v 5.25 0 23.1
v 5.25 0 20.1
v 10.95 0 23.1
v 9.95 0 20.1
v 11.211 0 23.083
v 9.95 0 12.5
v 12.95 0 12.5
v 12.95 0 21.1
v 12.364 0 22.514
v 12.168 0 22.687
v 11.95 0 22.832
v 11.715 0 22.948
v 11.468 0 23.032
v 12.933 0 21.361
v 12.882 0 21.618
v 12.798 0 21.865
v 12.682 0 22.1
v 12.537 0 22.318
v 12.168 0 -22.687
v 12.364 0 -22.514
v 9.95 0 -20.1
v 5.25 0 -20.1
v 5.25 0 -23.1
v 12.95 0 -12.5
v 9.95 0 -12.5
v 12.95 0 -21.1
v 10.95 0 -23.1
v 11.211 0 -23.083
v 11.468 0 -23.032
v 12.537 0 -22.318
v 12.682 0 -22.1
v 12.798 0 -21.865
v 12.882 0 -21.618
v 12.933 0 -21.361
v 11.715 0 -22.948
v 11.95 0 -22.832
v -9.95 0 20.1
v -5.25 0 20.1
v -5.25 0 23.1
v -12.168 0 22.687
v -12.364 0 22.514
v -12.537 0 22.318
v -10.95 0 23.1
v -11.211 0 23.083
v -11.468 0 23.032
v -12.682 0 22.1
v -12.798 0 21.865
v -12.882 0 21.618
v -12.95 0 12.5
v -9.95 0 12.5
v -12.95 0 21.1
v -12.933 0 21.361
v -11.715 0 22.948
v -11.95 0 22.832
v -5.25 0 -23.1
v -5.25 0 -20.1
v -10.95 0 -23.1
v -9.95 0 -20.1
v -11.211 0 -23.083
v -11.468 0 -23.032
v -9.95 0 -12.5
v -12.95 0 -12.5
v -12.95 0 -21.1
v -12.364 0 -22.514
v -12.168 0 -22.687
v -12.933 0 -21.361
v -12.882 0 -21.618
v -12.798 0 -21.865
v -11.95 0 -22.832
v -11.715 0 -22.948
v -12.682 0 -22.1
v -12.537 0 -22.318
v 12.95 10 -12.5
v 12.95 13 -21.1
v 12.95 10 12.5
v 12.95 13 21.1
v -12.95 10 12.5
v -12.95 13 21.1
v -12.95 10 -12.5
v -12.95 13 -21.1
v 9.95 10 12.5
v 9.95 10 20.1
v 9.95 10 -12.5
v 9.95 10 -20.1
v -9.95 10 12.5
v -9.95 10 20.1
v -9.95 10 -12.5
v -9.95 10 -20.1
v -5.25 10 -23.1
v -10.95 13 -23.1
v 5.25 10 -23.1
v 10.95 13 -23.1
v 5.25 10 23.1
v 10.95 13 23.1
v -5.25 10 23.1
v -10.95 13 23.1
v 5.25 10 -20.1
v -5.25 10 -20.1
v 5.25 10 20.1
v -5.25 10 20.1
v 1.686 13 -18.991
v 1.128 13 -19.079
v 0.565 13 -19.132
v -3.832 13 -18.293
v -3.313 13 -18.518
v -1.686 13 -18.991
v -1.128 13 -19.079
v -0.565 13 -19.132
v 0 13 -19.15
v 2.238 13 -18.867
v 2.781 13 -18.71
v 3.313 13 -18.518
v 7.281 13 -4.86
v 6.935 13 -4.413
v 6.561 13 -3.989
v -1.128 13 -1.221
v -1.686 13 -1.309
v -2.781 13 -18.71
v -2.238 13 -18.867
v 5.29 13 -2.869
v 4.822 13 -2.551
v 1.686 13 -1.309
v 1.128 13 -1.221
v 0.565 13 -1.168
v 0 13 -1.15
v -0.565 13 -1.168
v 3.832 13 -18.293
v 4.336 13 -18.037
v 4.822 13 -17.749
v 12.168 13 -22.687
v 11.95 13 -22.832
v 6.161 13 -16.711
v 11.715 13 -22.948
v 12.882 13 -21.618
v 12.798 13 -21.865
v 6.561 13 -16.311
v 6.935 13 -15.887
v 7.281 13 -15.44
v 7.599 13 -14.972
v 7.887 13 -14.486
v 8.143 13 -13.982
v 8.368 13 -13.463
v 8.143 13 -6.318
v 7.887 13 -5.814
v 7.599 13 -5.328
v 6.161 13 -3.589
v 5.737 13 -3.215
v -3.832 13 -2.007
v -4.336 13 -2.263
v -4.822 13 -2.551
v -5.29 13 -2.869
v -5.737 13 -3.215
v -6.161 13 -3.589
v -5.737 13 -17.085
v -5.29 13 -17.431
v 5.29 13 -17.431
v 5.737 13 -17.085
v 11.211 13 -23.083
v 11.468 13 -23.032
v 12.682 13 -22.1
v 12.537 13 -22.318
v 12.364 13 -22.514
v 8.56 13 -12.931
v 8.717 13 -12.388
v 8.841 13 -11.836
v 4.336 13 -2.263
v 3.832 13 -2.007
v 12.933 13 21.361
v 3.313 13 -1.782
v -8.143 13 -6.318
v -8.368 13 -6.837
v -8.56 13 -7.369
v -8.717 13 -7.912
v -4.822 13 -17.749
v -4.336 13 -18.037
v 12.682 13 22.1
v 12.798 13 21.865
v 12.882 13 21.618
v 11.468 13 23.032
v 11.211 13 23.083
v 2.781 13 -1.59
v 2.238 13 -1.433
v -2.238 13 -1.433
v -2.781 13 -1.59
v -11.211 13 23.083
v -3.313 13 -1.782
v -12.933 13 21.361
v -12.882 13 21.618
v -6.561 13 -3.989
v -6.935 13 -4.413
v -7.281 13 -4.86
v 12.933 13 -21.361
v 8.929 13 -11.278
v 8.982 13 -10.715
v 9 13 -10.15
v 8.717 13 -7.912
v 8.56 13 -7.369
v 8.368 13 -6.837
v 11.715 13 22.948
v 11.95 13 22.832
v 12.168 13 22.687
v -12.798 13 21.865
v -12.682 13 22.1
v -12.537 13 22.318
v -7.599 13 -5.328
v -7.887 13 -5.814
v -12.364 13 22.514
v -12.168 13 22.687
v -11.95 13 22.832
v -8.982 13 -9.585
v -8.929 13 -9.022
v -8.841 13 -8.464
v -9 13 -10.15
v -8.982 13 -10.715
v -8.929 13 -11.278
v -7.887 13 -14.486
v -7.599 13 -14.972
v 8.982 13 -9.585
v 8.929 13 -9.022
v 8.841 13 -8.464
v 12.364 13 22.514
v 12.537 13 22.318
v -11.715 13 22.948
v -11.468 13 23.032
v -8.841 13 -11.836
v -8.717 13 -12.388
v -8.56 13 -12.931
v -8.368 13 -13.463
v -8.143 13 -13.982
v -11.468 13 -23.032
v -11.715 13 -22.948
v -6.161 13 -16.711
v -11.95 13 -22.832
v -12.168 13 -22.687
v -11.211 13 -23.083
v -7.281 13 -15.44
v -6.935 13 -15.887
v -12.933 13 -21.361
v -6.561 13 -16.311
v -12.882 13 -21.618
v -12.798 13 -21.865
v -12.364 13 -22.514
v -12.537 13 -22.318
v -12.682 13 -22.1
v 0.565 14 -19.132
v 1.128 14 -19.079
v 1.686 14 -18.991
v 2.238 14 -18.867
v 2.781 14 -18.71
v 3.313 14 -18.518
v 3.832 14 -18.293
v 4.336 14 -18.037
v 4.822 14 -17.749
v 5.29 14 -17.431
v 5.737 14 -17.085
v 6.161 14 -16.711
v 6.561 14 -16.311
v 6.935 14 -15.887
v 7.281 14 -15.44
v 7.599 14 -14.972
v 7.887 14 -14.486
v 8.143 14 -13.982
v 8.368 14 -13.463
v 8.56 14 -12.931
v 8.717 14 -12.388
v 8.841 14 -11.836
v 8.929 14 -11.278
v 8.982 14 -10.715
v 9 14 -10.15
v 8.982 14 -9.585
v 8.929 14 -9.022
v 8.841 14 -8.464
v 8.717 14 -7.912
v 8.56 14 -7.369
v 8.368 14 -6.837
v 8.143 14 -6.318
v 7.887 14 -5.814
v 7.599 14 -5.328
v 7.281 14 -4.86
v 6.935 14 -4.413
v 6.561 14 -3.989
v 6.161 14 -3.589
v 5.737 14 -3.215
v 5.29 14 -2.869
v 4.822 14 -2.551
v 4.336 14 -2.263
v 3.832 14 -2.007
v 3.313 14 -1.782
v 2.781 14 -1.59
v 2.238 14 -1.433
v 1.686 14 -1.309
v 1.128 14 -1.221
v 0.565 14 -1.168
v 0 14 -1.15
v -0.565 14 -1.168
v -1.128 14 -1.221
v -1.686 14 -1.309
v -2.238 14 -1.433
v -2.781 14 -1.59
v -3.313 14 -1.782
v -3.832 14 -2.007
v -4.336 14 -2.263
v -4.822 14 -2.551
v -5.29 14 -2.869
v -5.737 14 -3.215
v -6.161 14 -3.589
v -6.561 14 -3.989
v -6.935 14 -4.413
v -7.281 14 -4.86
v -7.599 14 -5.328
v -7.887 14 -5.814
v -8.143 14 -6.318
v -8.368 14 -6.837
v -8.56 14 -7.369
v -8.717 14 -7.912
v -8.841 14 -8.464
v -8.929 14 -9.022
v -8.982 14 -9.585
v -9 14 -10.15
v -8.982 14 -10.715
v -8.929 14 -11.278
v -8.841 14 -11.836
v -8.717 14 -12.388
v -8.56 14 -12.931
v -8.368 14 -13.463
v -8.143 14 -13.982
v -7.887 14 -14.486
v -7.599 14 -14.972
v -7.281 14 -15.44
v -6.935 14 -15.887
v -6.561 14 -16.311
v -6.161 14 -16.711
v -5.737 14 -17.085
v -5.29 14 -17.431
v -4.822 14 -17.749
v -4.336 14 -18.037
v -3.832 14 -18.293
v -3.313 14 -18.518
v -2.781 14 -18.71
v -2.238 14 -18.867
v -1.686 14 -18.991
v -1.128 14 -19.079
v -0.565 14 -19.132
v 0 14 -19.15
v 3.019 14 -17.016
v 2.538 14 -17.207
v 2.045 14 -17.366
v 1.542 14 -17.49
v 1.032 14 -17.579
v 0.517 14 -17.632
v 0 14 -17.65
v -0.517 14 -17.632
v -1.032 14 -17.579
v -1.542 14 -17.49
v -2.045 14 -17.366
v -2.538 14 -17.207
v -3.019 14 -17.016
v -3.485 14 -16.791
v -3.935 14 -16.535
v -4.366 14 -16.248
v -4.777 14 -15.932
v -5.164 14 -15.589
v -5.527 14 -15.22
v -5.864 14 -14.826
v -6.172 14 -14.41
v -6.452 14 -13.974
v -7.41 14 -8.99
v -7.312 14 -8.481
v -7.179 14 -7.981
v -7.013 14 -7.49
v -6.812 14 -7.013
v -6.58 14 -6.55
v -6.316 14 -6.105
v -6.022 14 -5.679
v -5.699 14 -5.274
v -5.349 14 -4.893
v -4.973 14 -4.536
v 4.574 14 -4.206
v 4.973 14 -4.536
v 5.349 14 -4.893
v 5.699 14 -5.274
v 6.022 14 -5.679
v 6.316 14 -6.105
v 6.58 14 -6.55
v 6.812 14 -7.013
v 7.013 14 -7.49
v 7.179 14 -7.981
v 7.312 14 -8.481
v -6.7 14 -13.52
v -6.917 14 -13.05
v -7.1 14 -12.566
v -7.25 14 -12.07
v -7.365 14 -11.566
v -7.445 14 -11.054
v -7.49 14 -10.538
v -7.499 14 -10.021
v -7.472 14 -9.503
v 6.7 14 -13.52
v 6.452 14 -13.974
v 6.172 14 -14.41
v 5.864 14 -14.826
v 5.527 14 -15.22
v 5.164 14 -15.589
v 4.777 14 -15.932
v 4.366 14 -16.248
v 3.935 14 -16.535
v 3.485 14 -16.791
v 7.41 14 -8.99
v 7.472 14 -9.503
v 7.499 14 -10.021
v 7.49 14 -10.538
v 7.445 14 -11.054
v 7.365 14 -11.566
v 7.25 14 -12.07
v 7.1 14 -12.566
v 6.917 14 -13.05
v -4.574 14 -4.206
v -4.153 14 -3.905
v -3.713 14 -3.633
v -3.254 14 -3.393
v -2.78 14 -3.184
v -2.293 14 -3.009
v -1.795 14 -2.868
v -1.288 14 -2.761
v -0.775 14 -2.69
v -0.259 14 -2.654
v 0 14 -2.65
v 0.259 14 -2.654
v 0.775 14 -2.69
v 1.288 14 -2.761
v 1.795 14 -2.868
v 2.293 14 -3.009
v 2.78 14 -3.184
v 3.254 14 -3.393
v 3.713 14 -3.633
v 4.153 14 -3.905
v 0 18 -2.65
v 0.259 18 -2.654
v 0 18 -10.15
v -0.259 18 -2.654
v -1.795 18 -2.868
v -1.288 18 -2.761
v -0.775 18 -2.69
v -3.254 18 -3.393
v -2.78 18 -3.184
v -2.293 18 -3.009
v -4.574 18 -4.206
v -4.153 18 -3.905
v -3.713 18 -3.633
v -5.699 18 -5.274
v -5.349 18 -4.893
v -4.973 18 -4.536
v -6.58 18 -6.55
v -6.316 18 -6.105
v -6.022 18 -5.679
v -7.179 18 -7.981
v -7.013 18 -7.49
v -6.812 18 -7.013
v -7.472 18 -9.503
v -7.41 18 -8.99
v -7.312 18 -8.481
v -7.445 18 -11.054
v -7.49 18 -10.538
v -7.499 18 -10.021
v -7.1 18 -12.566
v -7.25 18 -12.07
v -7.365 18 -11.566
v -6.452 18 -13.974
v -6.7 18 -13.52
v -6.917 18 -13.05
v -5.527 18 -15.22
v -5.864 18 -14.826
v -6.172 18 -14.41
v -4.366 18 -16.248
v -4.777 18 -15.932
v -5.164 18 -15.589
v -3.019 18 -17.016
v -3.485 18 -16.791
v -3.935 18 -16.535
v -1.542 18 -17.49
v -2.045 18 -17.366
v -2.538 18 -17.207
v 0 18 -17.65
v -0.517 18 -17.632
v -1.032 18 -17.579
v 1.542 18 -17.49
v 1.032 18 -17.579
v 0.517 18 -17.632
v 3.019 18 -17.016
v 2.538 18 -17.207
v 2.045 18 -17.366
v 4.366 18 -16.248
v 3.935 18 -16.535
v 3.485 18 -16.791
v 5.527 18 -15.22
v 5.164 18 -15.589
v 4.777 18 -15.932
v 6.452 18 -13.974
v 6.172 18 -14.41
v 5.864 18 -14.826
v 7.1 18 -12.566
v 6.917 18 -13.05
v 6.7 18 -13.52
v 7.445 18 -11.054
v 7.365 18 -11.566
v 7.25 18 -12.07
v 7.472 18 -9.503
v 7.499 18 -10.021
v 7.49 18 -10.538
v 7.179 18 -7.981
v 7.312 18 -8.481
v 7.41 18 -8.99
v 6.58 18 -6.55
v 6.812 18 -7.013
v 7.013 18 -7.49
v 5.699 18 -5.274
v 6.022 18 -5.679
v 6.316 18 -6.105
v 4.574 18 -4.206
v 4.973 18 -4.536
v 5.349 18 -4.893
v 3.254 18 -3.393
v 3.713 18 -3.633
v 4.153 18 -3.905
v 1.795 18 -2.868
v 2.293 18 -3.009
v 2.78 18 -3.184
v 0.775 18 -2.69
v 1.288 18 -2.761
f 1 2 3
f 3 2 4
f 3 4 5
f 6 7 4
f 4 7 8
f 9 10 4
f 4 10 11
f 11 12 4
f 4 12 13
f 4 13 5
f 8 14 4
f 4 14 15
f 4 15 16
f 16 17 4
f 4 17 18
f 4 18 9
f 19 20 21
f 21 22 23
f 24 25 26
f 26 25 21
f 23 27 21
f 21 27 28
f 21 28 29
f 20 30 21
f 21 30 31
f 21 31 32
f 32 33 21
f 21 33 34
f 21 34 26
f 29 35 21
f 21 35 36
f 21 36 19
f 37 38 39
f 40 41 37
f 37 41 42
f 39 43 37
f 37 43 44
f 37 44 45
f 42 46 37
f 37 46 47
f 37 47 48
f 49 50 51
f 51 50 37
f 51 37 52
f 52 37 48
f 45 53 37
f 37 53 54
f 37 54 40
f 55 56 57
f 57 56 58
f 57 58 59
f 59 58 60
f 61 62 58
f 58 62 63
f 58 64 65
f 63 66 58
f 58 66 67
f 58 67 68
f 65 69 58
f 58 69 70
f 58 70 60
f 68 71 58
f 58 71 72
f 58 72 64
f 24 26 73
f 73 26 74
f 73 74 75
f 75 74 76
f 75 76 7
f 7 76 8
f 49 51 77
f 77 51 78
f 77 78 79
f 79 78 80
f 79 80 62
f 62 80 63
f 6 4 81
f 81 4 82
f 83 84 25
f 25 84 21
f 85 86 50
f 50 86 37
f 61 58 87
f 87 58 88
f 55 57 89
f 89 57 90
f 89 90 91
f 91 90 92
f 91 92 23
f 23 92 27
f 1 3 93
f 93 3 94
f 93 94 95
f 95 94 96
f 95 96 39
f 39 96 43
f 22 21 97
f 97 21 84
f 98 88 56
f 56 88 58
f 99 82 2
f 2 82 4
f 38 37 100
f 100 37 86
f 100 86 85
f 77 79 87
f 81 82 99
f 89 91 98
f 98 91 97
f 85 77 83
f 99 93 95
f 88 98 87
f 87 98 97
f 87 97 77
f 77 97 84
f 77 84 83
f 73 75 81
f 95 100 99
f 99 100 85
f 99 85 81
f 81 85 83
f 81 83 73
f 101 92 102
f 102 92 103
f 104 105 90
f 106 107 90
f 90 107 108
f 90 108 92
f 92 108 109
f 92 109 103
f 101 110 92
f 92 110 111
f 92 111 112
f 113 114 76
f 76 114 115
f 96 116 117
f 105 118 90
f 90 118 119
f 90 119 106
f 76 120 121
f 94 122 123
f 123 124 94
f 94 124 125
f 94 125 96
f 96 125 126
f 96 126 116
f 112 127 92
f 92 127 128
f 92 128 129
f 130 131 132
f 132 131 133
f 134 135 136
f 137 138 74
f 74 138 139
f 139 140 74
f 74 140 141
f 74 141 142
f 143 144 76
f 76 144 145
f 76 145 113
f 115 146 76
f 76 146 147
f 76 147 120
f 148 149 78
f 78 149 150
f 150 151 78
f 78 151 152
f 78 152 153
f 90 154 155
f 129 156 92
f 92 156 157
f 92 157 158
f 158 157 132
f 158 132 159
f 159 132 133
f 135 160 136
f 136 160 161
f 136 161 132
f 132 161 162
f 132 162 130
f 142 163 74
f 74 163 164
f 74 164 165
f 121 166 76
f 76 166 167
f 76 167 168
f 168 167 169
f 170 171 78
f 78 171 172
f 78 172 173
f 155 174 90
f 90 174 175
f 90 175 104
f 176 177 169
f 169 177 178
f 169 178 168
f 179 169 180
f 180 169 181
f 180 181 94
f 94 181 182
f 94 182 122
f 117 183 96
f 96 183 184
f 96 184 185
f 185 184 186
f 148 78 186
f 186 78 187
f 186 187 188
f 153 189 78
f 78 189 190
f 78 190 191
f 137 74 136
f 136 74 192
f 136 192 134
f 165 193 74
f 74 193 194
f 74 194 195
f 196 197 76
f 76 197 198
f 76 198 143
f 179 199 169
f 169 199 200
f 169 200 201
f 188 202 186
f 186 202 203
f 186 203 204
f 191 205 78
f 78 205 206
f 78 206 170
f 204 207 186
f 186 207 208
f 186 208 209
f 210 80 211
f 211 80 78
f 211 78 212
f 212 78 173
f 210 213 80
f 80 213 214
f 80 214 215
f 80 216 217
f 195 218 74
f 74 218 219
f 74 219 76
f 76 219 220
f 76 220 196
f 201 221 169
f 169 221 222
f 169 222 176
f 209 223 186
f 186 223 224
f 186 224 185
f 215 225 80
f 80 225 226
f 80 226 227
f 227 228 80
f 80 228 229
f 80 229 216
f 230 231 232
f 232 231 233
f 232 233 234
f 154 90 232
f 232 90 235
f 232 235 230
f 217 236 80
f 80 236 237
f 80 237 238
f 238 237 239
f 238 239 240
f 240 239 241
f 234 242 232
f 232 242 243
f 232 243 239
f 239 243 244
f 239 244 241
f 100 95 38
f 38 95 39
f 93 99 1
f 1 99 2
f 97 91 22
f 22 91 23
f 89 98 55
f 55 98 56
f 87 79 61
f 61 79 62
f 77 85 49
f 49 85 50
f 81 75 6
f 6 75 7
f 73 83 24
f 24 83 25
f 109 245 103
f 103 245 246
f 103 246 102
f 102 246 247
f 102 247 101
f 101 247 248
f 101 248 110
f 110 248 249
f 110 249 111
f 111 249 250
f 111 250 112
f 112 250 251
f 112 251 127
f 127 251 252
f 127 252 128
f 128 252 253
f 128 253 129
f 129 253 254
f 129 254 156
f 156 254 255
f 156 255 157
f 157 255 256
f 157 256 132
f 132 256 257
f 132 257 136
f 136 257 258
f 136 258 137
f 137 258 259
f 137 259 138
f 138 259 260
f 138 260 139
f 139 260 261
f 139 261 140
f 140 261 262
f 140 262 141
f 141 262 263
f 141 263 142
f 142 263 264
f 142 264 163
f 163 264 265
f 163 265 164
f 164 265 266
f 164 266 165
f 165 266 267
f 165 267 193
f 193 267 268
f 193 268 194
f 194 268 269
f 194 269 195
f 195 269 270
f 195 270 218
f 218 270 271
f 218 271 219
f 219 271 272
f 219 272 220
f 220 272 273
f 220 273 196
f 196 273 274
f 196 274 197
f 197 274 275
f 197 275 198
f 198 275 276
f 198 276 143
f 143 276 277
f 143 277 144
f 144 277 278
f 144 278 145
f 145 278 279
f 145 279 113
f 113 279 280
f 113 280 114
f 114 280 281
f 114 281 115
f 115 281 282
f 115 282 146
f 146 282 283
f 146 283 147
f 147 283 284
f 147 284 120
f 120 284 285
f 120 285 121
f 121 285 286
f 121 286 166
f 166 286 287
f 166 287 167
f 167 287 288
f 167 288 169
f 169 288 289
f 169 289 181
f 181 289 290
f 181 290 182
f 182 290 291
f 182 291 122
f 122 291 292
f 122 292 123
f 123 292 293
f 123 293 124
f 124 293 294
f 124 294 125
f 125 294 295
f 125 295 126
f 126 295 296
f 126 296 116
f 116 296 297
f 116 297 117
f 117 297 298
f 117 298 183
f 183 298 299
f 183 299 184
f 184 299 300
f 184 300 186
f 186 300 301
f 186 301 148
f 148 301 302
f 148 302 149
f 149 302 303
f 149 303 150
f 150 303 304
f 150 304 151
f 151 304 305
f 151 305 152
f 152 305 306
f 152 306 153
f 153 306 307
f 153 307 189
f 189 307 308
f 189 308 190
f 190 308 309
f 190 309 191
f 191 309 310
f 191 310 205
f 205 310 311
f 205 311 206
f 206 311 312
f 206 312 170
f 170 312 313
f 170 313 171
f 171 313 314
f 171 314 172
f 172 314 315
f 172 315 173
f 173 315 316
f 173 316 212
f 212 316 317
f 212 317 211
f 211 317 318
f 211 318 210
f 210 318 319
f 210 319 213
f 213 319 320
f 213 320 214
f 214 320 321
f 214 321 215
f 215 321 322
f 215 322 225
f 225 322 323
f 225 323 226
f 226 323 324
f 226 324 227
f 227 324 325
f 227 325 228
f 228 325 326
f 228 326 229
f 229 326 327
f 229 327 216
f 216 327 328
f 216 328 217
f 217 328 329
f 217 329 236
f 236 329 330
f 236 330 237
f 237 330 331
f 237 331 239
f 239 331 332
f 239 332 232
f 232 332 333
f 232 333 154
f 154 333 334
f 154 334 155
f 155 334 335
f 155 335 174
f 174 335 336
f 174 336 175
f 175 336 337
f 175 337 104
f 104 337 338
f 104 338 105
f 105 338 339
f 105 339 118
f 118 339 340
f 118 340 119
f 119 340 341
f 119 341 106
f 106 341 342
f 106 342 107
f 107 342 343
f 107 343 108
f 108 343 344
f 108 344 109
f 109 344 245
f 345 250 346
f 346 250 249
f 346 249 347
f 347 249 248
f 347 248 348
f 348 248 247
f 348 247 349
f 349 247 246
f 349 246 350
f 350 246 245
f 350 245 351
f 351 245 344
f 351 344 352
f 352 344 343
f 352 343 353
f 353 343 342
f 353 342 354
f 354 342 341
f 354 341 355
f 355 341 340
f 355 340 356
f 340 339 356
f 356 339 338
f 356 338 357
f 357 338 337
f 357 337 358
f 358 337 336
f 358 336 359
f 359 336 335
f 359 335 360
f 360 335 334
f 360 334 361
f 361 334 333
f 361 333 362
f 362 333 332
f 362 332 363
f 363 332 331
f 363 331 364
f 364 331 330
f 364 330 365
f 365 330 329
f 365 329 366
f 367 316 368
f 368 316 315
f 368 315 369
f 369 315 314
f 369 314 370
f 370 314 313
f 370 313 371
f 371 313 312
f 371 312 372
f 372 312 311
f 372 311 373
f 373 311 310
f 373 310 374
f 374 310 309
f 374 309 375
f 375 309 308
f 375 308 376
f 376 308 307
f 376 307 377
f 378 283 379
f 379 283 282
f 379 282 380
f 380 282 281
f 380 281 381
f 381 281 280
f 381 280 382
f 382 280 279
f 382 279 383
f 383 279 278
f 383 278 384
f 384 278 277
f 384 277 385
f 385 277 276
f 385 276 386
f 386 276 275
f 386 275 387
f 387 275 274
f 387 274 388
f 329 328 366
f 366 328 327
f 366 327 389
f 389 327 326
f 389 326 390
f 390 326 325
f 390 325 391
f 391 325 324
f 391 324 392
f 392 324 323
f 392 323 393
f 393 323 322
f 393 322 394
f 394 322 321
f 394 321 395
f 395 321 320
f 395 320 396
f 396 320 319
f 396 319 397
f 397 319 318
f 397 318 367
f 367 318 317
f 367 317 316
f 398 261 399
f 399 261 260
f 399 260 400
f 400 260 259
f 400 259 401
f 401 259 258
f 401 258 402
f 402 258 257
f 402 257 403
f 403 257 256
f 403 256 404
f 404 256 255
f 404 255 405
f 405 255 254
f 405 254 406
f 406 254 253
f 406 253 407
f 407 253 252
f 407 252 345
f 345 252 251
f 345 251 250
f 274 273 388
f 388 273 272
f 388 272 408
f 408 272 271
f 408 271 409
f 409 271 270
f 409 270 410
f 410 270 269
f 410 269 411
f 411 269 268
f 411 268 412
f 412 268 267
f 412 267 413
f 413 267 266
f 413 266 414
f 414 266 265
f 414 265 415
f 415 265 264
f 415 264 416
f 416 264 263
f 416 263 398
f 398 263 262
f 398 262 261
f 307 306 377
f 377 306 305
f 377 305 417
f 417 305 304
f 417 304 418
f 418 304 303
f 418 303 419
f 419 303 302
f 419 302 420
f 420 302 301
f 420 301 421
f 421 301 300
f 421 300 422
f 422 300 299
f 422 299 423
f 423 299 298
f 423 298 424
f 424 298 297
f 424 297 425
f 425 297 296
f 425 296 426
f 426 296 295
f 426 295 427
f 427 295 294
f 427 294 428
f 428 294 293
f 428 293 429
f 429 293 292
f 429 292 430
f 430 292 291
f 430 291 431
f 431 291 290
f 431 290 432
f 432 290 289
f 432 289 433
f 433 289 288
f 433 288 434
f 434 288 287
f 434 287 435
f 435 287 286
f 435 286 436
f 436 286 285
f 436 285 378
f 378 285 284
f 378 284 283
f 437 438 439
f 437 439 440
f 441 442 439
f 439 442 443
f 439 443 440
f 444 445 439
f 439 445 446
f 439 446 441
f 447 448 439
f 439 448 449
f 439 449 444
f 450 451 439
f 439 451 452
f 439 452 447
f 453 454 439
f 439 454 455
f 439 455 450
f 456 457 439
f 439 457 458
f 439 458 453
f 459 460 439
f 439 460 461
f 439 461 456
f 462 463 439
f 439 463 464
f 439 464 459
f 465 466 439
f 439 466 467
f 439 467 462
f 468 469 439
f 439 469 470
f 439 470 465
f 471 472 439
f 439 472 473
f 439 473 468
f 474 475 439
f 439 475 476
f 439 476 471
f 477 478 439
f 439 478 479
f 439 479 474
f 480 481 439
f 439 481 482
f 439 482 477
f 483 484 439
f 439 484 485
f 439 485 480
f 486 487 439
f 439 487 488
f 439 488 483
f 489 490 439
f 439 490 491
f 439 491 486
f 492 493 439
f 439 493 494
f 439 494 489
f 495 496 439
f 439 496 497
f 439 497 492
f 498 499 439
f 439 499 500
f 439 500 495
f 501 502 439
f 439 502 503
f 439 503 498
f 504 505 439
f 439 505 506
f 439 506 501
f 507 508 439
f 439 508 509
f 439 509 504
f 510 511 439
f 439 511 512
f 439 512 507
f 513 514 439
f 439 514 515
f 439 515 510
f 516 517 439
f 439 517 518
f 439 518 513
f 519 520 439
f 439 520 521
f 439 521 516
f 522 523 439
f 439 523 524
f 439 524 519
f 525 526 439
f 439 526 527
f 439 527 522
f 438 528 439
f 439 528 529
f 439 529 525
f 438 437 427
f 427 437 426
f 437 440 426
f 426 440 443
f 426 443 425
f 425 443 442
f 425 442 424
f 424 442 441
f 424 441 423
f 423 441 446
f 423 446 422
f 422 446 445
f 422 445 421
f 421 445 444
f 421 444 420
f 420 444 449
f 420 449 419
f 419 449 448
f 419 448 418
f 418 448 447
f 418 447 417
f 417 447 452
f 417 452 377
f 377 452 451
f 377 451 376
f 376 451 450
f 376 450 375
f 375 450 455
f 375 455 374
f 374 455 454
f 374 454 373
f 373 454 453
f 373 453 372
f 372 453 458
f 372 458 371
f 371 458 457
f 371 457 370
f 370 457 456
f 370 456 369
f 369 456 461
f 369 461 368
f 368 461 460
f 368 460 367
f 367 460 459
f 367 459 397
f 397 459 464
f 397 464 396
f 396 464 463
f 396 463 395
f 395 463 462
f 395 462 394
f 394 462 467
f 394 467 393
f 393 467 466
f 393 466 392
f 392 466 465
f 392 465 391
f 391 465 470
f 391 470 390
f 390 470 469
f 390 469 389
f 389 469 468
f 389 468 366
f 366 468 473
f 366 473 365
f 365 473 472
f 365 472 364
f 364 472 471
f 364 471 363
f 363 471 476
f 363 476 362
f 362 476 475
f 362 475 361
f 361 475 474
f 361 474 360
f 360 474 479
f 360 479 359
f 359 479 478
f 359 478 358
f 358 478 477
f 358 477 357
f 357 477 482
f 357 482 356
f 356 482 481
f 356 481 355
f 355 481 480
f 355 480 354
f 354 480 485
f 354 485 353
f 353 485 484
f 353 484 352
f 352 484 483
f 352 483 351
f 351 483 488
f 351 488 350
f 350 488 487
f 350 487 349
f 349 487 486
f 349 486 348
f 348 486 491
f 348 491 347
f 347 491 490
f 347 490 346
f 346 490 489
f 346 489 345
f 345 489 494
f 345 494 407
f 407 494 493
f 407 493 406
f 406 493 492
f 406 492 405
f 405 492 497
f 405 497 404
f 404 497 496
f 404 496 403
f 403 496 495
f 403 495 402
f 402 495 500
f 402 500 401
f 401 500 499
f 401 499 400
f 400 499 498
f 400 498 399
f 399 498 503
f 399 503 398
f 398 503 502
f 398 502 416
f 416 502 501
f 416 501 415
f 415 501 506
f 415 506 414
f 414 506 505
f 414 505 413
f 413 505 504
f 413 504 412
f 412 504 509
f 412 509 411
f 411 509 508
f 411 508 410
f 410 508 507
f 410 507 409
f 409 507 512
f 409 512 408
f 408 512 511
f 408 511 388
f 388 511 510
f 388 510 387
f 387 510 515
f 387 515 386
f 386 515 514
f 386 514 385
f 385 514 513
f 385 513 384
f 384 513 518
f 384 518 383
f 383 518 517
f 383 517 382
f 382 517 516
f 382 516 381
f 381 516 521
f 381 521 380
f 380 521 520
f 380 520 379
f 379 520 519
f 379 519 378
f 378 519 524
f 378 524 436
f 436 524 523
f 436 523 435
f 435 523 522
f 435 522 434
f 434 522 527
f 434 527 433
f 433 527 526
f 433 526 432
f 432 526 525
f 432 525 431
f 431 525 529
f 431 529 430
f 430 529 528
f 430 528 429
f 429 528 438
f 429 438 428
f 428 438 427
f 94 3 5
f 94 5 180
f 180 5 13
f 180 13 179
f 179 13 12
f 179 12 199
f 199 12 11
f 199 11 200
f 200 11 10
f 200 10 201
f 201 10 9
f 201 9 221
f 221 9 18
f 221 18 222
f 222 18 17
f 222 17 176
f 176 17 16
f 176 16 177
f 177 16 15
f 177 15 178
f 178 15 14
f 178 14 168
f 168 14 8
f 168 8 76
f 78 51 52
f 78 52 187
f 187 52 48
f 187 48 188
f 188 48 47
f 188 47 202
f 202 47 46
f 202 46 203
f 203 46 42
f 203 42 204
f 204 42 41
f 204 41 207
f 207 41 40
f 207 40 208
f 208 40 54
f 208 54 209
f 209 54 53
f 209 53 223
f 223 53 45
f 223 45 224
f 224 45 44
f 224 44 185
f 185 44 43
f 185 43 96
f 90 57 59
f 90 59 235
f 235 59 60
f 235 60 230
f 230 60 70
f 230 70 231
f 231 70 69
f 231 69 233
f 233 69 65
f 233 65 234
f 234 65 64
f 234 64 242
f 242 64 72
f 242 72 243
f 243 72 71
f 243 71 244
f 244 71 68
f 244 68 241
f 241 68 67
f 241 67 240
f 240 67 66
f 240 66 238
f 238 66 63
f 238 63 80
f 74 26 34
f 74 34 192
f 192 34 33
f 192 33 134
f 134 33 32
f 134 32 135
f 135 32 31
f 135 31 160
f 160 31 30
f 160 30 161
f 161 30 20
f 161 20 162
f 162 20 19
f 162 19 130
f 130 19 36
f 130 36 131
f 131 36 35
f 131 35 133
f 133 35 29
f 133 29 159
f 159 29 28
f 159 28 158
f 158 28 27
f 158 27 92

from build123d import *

# Parameters (mm, degrees)
CROQUIS1_W              = 25.9
CROQUIS1_H              = 46.2
CROQUIS1_W_2            = 19.9
CROQUIS1_H_2            = 40.2
SALIENTE_EXTRUIR1_DEPTH = 10
CROQUIS2_W              = 25.9
CROQUIS2_H              = 46.2
SALIENTE_EXTRUIR2_DEPTH = 3
CROQUIS3_W              = 10.5
CROQUIS3_H              = 46.2
CORTAR_EXTRUIR1_DEPTH   = 17
CROQUIS4_W              = 25.9
CROQUIS4_H              = 25
CORTAR_EXTRUIR2_DEPTH   = 17
CROQUIS5_R              = 7.5
SALIENTE_EXTRUIR3_DEPTH = 5
CROQUIS6_R              = 9
SALIENTE_EXTRUIR4_DEPTH = 1
REDONDEO1_R             = 2


with BuildPart() as part:
    # Croquis1 → Saliente-Extruir1 (new body)
    with BuildSketch(Plane(origin=(0, 0, 0), x_dir=(1, 0, 0), z_dir=(0, 1, 0))):
        Rectangle(CROQUIS1_W, CROQUIS1_H)
        Rectangle(CROQUIS1_W_2, CROQUIS1_H_2, mode=Mode.SUBTRACT)
    extrude(amount=SALIENTE_EXTRUIR1_DEPTH)

    # Croquis2 → Saliente-Extruir2 (add)
    with BuildSketch(Plane(origin=(0, 10, 0), x_dir=(1, 0, 0), z_dir=(0, 1, 0))):
        Rectangle(CROQUIS2_W, CROQUIS2_H)
    extrude(amount=SALIENTE_EXTRUIR2_DEPTH)

    # Croquis3 → Cortar-Extruir1 (cut)
    with BuildSketch(Plane.XZ.offset(-10)):
        Rectangle(CROQUIS3_W, CROQUIS3_H)
    extrude(amount=CORTAR_EXTRUIR1_DEPTH, mode=Mode.SUBTRACT)

    # Croquis4 → Cortar-Extruir2 (cut)
    with BuildSketch(Plane.XZ.offset(-10)):
        Rectangle(CROQUIS4_W, CROQUIS4_H)
    extrude(amount=CORTAR_EXTRUIR2_DEPTH, mode=Mode.SUBTRACT)

    # Croquis5 → Saliente-Extruir3 (add)
    with BuildSketch(Plane(origin=(0, 13, 0), x_dir=(1, 0, 0), z_dir=(0, 1, 0))):
        with Locations((0, 10.15)):
            Circle(CROQUIS5_R)
    extrude(amount=SALIENTE_EXTRUIR3_DEPTH)

    # Croquis6 → Saliente-Extruir4 (add)
    with BuildSketch(Plane(origin=(0, 13, 0), x_dir=(1, 0, 0), z_dir=(0, 1, 0))):
        with Locations((0, 10.15)):
            Circle(CROQUIS6_R)
    extrude(amount=SALIENTE_EXTRUIR4_DEPTH)

    # Redondeo1
    redondeo1_edges = [part.edges().sort_by_distance(p)[0] for p in [
        (12.95, 6.5, 23.1),
        (-12.95, 6.5, 23.1),
        (-12.95, 6.5, -23.1),
        (12.95, 6.5, -23.1),
    ]]
    fillet(redondeo1_edges, radius=REDONDEO1_R)


solid = part.part
